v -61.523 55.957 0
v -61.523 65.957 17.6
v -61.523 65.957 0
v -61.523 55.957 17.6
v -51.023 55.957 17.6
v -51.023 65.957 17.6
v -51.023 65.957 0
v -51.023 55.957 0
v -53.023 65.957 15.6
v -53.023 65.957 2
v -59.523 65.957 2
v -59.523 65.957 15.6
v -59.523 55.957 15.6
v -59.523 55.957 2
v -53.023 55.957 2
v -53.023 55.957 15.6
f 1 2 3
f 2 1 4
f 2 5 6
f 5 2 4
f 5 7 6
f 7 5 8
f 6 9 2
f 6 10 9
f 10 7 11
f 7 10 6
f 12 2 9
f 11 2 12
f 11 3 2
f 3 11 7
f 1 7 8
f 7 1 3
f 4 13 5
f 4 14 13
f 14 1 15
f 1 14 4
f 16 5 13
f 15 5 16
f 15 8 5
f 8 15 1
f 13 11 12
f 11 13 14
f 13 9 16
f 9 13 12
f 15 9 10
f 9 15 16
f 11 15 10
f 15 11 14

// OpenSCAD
difference () {
  translate ([-56.27338164769888, 60.9565168793326, 8.8]) {
    cube ([10.5, 10.0, 17.6], center=true);
  }
  translate ([-56.27338164769888, 60.9565168793326, 8.8]) {
    cube ([6.5, 10.0, 13.6], center=true);
  }
}
